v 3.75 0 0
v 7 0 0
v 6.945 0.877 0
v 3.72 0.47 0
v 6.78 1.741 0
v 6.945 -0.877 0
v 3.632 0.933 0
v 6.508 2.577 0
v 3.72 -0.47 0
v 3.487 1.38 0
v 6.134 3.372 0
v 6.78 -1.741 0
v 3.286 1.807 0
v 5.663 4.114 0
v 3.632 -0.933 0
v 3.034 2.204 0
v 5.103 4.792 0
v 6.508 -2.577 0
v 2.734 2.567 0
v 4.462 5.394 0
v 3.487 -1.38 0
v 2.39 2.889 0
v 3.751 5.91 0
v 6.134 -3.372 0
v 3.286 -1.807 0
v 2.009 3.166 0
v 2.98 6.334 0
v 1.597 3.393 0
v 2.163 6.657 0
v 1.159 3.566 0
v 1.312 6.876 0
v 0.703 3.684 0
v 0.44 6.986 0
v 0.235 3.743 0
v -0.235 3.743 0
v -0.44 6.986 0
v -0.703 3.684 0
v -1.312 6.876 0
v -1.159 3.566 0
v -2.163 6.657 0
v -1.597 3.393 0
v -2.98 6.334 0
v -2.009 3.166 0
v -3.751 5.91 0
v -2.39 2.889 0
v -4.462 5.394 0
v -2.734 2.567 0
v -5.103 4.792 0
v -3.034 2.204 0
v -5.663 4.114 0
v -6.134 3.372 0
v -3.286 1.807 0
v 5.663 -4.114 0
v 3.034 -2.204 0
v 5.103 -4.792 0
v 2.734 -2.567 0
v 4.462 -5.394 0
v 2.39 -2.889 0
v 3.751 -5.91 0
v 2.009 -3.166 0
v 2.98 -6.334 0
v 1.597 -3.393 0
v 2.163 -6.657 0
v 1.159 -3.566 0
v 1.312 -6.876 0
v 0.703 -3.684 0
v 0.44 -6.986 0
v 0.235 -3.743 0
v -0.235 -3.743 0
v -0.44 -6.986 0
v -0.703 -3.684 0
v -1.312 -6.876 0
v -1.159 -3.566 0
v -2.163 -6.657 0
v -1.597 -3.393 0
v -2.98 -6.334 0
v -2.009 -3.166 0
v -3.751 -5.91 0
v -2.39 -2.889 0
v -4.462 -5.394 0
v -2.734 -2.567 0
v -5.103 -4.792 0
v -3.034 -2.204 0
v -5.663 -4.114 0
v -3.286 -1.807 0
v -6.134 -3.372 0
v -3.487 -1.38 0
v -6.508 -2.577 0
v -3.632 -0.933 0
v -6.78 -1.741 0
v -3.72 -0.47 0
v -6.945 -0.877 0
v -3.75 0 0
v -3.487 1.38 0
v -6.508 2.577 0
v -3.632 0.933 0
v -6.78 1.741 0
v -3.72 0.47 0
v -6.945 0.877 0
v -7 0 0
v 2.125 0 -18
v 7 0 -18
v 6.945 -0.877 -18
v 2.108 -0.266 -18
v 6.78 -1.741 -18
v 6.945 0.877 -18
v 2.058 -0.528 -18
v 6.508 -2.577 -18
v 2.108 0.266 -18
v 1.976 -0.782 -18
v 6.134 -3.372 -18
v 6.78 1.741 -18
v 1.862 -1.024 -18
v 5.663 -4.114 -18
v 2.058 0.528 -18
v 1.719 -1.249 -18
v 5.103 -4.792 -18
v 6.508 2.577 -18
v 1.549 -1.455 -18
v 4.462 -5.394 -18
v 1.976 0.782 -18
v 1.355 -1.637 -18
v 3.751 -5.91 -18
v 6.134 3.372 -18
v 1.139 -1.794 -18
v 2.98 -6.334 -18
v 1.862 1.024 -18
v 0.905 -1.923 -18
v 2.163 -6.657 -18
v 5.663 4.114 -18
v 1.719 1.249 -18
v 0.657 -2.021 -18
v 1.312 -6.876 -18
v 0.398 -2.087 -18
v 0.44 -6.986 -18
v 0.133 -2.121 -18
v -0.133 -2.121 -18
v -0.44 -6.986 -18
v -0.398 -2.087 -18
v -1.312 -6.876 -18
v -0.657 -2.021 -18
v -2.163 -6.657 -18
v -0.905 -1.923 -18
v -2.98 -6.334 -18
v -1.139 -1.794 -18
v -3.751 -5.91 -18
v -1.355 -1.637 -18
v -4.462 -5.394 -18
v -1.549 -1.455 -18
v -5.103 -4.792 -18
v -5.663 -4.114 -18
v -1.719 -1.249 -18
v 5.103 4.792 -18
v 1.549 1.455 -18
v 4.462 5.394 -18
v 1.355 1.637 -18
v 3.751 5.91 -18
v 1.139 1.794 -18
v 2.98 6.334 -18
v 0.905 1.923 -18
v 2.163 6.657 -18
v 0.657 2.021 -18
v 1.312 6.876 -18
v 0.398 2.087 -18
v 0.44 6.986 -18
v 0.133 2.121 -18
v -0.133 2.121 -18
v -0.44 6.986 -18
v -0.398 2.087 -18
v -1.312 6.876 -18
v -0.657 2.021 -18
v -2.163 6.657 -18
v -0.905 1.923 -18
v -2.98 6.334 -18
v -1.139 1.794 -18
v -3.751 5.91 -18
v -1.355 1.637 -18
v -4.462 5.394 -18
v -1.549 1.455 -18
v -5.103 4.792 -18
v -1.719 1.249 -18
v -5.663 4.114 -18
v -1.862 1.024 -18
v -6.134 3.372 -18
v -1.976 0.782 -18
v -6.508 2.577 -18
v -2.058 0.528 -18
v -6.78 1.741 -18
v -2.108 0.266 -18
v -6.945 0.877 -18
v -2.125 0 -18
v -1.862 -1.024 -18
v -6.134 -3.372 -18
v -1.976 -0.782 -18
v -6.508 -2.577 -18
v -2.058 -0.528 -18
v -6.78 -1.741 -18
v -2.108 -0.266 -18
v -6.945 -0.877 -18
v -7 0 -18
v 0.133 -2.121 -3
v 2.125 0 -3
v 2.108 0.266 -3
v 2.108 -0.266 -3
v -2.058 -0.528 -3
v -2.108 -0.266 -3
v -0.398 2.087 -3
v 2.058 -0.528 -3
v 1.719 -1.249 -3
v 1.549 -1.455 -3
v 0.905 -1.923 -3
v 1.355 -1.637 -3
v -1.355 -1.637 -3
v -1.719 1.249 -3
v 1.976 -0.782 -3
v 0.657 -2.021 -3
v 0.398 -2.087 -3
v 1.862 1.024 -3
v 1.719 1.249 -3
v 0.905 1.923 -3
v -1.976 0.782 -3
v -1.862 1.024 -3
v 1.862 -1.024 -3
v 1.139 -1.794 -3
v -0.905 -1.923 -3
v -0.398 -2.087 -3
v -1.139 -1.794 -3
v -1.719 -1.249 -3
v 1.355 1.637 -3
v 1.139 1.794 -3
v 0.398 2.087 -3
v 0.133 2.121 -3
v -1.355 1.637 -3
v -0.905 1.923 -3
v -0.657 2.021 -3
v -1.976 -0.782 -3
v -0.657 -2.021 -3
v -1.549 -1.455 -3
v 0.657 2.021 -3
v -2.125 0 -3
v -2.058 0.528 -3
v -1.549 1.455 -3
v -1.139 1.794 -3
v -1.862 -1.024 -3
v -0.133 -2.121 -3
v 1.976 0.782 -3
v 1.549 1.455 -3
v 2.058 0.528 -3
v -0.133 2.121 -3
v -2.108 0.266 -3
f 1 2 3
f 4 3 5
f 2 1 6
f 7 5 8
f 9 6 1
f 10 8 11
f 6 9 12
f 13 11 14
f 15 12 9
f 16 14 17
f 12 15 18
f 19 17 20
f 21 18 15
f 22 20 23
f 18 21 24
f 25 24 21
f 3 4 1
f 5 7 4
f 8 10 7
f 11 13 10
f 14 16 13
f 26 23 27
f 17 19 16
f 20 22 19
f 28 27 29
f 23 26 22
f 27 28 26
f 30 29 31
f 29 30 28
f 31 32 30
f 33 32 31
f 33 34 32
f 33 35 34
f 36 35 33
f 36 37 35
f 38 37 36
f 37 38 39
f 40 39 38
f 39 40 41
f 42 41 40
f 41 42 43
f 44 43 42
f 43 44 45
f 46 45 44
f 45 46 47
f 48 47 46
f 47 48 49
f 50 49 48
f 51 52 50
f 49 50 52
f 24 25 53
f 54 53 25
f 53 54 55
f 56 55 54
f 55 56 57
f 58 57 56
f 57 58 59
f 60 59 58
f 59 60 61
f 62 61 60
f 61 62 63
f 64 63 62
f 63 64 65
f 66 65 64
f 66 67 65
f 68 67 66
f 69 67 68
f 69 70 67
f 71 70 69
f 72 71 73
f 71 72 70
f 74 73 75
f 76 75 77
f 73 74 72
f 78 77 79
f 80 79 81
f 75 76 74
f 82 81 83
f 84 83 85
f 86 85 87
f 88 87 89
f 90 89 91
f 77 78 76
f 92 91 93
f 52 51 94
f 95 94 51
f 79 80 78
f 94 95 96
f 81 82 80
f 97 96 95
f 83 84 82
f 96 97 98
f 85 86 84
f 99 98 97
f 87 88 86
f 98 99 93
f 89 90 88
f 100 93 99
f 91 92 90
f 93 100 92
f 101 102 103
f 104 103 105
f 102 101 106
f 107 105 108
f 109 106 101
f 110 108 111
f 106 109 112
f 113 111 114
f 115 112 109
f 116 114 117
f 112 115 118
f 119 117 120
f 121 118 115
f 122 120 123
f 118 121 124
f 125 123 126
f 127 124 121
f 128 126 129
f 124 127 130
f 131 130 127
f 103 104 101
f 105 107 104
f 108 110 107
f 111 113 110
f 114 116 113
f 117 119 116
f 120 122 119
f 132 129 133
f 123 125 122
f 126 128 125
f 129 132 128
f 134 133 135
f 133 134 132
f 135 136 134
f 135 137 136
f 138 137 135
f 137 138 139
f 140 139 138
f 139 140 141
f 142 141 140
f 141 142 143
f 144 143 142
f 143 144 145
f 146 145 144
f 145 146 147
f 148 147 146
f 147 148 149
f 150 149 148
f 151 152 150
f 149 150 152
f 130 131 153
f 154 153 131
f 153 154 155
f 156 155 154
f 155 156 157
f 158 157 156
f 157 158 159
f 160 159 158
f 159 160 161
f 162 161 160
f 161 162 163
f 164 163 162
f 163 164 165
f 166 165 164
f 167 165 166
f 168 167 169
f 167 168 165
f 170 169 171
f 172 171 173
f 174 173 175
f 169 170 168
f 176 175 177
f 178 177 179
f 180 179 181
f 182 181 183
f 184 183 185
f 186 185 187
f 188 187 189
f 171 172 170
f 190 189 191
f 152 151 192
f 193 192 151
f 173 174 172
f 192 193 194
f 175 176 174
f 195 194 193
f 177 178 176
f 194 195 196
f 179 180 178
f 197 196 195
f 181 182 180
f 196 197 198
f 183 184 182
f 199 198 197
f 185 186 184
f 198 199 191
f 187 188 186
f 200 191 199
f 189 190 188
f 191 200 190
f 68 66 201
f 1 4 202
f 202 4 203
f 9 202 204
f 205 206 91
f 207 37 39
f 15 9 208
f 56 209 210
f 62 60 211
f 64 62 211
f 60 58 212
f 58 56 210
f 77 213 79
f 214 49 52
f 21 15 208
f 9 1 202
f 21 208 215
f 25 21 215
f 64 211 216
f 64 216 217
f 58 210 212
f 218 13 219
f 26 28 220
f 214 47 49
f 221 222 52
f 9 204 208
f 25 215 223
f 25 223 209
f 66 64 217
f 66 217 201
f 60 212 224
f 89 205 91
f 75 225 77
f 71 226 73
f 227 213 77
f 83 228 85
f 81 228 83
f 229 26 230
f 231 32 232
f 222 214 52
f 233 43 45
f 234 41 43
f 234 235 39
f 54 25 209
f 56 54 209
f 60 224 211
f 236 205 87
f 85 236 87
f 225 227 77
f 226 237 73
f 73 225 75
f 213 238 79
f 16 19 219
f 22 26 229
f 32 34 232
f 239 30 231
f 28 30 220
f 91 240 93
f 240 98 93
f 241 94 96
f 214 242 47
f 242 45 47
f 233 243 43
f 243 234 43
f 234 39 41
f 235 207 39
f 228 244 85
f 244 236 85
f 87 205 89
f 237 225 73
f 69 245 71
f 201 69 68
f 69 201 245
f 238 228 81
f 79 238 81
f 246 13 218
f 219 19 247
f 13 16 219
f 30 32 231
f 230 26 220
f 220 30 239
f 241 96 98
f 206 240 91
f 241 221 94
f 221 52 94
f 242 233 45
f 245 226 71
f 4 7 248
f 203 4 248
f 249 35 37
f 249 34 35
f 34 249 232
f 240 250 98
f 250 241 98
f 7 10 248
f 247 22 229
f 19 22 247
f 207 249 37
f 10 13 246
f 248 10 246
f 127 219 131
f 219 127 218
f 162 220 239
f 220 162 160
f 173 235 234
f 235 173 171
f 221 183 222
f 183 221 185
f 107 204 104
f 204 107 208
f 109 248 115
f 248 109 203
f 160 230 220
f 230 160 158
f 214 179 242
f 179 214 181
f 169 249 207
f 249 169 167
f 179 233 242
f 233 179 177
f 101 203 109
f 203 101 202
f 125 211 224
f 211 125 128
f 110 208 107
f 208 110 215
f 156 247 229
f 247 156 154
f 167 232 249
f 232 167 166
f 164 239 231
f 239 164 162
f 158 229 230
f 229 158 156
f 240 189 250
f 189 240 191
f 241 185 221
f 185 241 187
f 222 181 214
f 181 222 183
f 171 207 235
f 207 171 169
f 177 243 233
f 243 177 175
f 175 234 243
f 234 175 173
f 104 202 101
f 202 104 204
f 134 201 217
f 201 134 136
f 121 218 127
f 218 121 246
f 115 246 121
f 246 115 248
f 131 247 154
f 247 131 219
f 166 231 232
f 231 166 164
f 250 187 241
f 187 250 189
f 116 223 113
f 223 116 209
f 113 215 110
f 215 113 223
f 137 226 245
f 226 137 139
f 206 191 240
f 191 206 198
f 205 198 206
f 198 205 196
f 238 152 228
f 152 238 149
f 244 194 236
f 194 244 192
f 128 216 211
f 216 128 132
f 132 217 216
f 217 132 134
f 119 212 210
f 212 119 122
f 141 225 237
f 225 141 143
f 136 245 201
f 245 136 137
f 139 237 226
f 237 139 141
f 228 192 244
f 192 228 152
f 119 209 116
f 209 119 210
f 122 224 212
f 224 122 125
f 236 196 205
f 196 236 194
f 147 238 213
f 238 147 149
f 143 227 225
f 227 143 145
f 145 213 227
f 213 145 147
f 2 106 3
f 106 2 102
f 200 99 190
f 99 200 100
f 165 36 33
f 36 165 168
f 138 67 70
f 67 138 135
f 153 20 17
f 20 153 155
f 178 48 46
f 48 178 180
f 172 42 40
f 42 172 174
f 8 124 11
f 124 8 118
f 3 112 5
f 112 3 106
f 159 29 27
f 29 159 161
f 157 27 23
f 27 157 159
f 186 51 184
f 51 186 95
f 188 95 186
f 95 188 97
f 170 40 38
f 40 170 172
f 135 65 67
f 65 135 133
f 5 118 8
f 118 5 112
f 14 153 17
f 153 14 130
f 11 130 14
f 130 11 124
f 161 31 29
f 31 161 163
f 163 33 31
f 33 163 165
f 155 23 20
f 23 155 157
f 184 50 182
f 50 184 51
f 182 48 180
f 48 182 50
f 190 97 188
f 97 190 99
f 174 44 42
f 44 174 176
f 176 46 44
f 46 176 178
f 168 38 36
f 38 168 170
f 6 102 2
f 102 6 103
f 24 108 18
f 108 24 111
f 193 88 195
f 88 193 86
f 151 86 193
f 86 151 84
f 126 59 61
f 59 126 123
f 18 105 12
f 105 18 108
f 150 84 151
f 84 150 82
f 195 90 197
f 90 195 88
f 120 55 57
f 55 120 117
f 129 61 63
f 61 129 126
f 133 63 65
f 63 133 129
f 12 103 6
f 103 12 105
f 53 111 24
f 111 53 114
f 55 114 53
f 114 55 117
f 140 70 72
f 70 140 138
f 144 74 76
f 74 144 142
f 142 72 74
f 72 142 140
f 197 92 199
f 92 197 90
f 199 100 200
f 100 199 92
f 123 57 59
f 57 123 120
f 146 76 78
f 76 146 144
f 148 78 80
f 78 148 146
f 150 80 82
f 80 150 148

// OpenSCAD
$fn = 50;


difference() {
	union() {
		translate(v = [0, 0, -18.0000000000]) {
			cylinder(h = 18, r = 7.0000000000);
		}
		cylinder(h = 0, r = 16.0000000000);
	}
	union() {
		translate(v = [0, 0, 0]) {
			rotate(a = [0, 0, 0]) {
				difference() {
					union() {
						#translate(v = [0, 0, -18.0000000000]) {
							cylinder(h = 18, r = 2.0000000000);
						}
						#translate(v = [0, 0, -3]) {
							cylinder(h = 3, r = 7.0000000000, r1 = 2.1250000000, r2 = 3.7500000000);
						}
						#translate(v = [0, 0, -18.0000000000]) {
							cylinder(h = 18, r = 2.1250000000);
						}
						#translate(v = [0, 0, -18.0000000000]) {
							cylinder(h = 18, r = 2.0000000000);
						}
					}
					union();
				}
			}
		}
	}
}
